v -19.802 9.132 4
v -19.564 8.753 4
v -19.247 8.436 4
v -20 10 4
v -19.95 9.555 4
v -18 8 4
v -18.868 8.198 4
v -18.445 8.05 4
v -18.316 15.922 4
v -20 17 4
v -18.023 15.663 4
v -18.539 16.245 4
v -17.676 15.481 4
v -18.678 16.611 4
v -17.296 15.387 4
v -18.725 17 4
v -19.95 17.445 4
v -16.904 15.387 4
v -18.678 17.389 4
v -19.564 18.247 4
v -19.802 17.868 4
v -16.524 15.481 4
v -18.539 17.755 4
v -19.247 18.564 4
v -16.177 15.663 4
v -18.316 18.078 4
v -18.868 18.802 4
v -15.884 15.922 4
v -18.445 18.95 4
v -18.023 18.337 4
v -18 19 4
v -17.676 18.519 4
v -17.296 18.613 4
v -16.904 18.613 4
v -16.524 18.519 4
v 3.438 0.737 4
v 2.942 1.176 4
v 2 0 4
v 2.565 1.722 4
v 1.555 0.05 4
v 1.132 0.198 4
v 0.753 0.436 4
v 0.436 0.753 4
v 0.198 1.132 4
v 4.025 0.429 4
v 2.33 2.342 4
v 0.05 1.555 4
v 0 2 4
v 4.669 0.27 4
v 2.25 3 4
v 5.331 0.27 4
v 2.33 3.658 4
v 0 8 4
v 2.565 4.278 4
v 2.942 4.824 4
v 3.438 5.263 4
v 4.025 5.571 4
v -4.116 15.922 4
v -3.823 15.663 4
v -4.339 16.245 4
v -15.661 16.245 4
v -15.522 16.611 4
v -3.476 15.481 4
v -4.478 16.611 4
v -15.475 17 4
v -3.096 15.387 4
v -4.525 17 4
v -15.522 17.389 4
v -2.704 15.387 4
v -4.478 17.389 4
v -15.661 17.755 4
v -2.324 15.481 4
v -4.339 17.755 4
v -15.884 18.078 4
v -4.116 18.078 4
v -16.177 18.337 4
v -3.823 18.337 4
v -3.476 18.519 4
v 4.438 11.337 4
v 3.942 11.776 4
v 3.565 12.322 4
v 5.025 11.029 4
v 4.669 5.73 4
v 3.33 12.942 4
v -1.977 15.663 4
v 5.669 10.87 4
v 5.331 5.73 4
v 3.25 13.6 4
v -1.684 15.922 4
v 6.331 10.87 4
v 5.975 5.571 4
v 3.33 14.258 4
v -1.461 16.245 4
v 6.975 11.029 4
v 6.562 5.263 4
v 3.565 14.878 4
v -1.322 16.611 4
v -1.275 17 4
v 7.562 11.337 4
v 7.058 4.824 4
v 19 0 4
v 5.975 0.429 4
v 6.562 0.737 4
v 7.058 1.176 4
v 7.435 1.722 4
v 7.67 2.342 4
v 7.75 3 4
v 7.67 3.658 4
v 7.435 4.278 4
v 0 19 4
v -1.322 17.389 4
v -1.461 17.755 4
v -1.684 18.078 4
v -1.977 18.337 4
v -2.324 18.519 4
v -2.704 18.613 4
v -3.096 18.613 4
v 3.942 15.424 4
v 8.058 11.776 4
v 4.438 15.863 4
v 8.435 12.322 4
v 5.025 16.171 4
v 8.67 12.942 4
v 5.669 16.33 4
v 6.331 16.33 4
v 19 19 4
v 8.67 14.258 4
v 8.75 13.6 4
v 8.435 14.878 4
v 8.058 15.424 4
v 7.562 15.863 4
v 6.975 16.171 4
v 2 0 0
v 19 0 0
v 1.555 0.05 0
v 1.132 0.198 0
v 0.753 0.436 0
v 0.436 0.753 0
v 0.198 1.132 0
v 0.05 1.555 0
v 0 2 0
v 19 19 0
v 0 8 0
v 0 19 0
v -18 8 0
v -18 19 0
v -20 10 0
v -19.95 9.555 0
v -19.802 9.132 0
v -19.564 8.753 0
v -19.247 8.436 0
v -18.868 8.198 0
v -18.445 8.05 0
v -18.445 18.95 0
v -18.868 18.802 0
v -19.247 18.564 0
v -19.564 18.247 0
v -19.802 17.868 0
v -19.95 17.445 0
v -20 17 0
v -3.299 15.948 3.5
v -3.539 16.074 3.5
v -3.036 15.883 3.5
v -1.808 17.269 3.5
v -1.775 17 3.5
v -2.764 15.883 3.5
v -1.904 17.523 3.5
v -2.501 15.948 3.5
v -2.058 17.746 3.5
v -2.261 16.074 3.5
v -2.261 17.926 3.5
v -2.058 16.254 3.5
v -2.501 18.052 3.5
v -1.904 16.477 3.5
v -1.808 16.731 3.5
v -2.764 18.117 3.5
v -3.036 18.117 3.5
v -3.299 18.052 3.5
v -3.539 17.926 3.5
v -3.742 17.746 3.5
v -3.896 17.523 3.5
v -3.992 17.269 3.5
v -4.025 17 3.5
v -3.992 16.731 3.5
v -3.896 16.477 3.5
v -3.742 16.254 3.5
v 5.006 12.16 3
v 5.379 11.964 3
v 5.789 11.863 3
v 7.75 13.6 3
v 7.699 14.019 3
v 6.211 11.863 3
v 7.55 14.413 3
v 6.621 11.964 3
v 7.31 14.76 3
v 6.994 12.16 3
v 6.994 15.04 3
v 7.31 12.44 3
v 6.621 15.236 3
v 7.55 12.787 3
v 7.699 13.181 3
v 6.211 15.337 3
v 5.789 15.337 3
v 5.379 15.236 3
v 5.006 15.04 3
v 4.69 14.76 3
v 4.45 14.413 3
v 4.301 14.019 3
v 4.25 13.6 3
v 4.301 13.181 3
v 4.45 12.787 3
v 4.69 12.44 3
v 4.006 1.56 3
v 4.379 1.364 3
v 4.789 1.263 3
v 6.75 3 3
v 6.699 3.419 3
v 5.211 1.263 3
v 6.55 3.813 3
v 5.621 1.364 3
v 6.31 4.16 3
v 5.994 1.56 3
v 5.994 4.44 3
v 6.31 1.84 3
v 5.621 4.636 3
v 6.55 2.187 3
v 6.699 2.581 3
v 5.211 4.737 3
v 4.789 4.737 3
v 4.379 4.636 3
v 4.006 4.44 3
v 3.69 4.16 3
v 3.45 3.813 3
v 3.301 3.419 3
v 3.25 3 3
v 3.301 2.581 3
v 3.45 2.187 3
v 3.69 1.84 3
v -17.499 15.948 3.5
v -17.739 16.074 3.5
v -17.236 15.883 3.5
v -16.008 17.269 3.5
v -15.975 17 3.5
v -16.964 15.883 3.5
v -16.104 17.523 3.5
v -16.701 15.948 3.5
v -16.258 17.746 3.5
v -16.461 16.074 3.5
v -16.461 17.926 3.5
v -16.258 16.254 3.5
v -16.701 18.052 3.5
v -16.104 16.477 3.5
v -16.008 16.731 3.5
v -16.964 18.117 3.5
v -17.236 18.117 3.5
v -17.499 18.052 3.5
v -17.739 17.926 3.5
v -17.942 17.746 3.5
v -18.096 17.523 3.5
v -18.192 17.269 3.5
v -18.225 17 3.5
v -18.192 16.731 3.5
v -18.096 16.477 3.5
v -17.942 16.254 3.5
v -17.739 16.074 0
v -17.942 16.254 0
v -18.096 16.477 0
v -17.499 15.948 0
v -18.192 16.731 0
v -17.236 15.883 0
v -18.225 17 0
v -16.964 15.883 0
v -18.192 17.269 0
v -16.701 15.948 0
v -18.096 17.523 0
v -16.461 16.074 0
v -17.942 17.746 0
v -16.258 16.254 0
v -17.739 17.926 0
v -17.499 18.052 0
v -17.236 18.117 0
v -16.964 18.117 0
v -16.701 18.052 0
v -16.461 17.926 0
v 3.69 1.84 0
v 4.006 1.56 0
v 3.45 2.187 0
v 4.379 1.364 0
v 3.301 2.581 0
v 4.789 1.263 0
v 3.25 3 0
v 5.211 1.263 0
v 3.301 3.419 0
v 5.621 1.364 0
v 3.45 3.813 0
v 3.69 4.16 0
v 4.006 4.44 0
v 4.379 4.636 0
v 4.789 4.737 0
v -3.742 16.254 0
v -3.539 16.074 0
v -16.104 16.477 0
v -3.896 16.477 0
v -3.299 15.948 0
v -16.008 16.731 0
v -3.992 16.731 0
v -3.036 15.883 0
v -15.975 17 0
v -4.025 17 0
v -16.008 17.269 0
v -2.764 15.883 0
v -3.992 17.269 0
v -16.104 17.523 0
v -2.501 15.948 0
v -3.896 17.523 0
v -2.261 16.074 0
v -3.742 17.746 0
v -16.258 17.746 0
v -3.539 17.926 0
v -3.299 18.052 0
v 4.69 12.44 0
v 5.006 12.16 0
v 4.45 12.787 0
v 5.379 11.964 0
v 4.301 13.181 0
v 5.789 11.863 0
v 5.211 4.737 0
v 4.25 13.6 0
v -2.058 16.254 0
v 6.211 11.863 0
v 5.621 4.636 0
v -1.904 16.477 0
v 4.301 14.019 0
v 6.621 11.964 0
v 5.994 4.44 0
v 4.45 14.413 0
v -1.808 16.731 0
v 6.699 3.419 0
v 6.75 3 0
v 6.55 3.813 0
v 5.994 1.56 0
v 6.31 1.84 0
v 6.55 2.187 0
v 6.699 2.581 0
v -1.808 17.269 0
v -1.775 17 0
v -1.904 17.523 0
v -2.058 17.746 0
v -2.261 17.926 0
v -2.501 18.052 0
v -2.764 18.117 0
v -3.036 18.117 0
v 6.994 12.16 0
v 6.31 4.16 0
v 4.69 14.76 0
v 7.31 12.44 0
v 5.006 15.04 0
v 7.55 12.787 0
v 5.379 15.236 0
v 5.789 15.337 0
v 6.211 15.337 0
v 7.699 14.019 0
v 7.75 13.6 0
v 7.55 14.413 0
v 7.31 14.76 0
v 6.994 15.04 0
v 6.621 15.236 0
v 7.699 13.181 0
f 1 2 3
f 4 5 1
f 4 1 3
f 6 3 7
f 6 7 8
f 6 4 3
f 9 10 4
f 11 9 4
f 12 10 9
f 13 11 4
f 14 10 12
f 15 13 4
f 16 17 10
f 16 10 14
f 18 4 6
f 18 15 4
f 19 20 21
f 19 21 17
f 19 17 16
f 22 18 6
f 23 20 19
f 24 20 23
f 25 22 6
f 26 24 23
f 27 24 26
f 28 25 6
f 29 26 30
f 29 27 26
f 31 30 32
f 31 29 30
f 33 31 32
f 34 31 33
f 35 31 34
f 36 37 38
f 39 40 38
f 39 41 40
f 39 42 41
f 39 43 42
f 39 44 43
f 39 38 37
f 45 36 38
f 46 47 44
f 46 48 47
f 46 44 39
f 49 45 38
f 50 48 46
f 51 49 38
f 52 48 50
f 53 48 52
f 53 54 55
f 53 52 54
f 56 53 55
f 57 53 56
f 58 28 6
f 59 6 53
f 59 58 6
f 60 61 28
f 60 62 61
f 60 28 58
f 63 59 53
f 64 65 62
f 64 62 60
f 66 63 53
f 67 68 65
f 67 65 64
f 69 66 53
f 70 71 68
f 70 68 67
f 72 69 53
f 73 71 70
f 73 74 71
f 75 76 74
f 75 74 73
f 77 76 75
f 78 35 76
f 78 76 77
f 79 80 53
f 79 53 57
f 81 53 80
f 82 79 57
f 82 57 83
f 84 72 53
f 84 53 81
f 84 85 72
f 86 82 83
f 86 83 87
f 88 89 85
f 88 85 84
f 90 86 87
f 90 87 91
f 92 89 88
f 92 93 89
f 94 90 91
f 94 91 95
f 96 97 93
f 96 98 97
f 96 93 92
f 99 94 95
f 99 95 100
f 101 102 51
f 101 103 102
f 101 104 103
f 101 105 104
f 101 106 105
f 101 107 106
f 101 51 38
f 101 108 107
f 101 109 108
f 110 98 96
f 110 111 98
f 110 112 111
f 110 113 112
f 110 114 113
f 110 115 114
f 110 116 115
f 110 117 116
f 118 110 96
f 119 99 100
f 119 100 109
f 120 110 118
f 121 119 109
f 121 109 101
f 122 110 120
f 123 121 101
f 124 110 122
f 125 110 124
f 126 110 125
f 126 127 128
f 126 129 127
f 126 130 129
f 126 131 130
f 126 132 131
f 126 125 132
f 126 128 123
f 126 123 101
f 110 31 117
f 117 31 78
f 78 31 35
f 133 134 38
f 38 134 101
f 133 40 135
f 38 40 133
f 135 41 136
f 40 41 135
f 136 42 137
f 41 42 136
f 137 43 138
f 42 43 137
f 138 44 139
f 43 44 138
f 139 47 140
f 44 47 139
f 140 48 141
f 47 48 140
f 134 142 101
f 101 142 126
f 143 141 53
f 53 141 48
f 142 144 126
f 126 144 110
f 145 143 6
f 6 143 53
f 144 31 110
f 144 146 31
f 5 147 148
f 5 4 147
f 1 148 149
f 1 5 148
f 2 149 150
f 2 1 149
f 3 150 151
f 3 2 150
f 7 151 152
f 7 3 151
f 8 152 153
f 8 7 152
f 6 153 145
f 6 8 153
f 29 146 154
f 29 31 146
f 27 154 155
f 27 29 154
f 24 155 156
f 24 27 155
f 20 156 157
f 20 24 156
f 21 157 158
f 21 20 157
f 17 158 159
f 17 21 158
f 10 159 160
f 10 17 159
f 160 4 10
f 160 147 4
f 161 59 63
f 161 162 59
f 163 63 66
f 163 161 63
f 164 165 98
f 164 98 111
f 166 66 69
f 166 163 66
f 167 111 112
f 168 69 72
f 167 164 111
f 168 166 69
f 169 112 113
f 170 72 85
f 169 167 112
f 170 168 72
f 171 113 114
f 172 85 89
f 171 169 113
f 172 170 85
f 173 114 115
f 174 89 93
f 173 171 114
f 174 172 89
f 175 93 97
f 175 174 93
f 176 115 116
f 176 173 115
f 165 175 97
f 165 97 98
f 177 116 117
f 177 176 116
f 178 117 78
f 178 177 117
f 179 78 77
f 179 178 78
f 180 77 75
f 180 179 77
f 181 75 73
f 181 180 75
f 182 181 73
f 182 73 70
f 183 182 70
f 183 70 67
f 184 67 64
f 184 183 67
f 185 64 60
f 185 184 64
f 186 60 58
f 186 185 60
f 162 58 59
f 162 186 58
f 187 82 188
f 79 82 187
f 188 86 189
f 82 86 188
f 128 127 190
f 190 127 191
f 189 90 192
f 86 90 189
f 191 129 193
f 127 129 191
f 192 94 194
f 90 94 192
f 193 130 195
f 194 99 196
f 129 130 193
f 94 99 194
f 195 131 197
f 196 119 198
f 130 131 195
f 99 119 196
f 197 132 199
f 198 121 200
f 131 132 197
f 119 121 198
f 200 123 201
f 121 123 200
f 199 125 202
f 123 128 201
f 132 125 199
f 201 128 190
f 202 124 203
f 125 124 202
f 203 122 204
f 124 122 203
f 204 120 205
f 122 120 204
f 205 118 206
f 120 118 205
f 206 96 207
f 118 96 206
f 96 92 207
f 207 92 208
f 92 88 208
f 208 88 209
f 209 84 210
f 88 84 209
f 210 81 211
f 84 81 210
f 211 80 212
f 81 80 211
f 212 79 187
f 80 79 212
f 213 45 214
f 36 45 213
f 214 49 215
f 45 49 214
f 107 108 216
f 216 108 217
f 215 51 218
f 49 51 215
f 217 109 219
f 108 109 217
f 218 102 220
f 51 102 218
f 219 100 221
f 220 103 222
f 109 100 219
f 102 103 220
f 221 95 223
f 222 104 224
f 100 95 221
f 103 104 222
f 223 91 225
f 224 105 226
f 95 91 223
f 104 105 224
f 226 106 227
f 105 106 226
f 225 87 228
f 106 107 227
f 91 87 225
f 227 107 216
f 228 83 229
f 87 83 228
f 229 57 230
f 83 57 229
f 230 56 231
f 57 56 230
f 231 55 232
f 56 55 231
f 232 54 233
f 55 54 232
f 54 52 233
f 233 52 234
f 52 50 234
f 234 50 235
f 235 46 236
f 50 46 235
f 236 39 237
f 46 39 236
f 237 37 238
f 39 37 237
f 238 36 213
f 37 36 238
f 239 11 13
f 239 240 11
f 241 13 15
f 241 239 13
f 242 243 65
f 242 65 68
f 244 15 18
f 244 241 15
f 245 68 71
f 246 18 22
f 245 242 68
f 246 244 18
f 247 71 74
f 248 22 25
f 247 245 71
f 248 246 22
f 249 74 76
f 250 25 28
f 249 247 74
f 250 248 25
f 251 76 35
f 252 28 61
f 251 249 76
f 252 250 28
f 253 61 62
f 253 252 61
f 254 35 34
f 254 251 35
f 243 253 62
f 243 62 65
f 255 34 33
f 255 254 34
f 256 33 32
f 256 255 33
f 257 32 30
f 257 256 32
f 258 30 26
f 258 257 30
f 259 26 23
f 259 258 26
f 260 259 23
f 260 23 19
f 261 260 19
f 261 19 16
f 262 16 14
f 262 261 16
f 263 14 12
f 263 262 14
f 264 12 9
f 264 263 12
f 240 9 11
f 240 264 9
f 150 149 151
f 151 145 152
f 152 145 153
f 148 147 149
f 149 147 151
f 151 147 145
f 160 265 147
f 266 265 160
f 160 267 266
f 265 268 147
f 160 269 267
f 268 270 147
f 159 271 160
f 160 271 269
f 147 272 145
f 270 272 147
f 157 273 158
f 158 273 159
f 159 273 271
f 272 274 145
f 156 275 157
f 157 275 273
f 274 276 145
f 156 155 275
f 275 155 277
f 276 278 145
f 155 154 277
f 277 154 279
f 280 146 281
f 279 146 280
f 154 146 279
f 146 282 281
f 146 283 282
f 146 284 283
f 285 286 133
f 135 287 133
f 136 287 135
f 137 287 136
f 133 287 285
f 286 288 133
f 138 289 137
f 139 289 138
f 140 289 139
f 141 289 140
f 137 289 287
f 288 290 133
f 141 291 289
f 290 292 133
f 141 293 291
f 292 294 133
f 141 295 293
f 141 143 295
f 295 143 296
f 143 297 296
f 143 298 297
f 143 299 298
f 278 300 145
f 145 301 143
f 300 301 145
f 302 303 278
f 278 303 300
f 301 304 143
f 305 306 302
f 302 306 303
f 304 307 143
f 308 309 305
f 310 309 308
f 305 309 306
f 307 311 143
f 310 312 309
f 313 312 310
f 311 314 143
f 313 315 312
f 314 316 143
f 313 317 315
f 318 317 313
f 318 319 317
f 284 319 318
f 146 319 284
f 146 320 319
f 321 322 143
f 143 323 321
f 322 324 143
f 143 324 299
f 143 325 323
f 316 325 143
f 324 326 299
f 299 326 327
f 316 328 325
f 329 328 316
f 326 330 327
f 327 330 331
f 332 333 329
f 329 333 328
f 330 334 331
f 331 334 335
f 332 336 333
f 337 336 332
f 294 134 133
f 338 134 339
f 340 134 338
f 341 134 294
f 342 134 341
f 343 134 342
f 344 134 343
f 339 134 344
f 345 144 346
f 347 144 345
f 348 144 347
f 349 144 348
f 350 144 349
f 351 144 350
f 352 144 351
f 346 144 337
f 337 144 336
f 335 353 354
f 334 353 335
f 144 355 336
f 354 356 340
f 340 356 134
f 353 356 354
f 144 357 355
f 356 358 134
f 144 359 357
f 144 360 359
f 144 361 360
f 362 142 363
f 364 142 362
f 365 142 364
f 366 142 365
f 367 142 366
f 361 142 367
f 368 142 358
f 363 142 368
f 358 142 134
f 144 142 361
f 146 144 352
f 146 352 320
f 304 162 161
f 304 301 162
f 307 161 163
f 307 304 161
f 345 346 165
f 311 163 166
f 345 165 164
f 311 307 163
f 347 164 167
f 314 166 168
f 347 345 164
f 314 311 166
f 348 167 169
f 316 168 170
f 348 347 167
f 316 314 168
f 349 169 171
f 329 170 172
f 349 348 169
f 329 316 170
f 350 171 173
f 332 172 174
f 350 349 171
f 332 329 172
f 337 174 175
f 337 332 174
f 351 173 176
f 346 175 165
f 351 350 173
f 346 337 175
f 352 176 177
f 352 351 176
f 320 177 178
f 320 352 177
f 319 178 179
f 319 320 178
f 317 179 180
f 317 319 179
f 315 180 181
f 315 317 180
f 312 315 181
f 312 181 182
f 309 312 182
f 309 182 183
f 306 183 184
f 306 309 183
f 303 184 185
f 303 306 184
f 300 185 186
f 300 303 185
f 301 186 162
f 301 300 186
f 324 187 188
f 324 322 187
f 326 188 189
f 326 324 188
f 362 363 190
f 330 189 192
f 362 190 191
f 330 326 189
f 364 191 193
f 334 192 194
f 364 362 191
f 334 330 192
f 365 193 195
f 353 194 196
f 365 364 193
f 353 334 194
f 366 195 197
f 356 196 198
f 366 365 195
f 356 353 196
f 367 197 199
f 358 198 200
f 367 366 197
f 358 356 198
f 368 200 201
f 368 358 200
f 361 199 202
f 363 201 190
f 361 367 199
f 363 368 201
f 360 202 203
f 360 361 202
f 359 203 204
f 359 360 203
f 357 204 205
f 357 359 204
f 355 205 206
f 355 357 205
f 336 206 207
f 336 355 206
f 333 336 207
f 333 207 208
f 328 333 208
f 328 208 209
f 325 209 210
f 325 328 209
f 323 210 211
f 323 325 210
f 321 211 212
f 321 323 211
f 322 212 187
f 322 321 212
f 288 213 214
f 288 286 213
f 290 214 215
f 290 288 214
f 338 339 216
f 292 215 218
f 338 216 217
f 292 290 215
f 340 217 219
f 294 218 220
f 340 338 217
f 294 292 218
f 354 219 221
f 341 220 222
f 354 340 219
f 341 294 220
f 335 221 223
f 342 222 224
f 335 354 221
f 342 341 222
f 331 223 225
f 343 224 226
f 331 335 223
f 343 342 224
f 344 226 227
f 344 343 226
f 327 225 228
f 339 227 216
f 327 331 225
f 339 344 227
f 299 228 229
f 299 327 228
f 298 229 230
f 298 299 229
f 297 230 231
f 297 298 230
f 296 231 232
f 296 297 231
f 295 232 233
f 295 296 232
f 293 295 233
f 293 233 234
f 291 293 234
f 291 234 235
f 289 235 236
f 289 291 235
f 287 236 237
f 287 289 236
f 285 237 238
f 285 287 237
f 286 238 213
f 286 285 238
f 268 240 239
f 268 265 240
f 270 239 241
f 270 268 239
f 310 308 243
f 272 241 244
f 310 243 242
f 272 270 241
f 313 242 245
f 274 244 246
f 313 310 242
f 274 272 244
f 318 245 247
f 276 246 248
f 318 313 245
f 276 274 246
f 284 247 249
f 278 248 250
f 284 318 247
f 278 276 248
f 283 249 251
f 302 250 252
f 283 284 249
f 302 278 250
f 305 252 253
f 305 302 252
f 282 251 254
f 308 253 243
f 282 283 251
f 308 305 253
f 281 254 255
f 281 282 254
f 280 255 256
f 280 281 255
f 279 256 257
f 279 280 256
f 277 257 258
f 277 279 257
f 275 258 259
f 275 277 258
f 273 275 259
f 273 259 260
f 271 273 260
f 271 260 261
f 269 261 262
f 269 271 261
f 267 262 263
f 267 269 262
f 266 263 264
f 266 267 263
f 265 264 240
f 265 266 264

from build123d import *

# Parameters (mm, degrees)
SKETCH_R        = 1.75
SKETCH_R_2      = 1.125
PAD_DEPTH       = 4
CHAMFER_SIZE    = 1
CHAMFER001_SIZE = 0.5
FILLET_R        = 2


with BuildPart() as part:
    # Sketch → Pad (new body)
    with BuildSketch(Plane.XY):
        Polygon((0, 0), (19, 0), (19, 19), (0, 19), (-20, 19), (-20, 8), (0, 8), align=None)
        with Locations((5, 3)):
            Circle(SKETCH_R, mode=Mode.SUBTRACT)
        with Locations((6, 13.6)):
            Circle(SKETCH_R, mode=Mode.SUBTRACT)
        with Locations((-2.9, 17)):
            Circle(SKETCH_R_2, mode=Mode.SUBTRACT)
        with Locations((-17.1, 17)):
            Circle(SKETCH_R_2, mode=Mode.SUBTRACT)
    extrude(amount=PAD_DEPTH)

    # Chamfer
    chamfer_edges = [part.edges().sort_by_distance(p)[0] for p in [
        (4.25, 13.6, 4),
        (3.25, 3, 4),
    ]]
    chamfer(chamfer_edges, length=CHAMFER_SIZE)

    # Chamfer001
    chamfer001_edges = [part.edges().sort_by_distance(p)[0] for p in [
        (-4.025, 17, 4),
        (-18.225, 17, 4),
    ]]
    chamfer(chamfer001_edges, length=CHAMFER001_SIZE)

    # Fillet
    fillet_edges = [part.edges().sort_by_distance(p)[0] for p in [
        (0, 0, 2),
        (-20, 8, 2),
        (-20, 19, 2),
    ]]
    fillet(fillet_edges, radius=FILLET_R)


solid = part.part
